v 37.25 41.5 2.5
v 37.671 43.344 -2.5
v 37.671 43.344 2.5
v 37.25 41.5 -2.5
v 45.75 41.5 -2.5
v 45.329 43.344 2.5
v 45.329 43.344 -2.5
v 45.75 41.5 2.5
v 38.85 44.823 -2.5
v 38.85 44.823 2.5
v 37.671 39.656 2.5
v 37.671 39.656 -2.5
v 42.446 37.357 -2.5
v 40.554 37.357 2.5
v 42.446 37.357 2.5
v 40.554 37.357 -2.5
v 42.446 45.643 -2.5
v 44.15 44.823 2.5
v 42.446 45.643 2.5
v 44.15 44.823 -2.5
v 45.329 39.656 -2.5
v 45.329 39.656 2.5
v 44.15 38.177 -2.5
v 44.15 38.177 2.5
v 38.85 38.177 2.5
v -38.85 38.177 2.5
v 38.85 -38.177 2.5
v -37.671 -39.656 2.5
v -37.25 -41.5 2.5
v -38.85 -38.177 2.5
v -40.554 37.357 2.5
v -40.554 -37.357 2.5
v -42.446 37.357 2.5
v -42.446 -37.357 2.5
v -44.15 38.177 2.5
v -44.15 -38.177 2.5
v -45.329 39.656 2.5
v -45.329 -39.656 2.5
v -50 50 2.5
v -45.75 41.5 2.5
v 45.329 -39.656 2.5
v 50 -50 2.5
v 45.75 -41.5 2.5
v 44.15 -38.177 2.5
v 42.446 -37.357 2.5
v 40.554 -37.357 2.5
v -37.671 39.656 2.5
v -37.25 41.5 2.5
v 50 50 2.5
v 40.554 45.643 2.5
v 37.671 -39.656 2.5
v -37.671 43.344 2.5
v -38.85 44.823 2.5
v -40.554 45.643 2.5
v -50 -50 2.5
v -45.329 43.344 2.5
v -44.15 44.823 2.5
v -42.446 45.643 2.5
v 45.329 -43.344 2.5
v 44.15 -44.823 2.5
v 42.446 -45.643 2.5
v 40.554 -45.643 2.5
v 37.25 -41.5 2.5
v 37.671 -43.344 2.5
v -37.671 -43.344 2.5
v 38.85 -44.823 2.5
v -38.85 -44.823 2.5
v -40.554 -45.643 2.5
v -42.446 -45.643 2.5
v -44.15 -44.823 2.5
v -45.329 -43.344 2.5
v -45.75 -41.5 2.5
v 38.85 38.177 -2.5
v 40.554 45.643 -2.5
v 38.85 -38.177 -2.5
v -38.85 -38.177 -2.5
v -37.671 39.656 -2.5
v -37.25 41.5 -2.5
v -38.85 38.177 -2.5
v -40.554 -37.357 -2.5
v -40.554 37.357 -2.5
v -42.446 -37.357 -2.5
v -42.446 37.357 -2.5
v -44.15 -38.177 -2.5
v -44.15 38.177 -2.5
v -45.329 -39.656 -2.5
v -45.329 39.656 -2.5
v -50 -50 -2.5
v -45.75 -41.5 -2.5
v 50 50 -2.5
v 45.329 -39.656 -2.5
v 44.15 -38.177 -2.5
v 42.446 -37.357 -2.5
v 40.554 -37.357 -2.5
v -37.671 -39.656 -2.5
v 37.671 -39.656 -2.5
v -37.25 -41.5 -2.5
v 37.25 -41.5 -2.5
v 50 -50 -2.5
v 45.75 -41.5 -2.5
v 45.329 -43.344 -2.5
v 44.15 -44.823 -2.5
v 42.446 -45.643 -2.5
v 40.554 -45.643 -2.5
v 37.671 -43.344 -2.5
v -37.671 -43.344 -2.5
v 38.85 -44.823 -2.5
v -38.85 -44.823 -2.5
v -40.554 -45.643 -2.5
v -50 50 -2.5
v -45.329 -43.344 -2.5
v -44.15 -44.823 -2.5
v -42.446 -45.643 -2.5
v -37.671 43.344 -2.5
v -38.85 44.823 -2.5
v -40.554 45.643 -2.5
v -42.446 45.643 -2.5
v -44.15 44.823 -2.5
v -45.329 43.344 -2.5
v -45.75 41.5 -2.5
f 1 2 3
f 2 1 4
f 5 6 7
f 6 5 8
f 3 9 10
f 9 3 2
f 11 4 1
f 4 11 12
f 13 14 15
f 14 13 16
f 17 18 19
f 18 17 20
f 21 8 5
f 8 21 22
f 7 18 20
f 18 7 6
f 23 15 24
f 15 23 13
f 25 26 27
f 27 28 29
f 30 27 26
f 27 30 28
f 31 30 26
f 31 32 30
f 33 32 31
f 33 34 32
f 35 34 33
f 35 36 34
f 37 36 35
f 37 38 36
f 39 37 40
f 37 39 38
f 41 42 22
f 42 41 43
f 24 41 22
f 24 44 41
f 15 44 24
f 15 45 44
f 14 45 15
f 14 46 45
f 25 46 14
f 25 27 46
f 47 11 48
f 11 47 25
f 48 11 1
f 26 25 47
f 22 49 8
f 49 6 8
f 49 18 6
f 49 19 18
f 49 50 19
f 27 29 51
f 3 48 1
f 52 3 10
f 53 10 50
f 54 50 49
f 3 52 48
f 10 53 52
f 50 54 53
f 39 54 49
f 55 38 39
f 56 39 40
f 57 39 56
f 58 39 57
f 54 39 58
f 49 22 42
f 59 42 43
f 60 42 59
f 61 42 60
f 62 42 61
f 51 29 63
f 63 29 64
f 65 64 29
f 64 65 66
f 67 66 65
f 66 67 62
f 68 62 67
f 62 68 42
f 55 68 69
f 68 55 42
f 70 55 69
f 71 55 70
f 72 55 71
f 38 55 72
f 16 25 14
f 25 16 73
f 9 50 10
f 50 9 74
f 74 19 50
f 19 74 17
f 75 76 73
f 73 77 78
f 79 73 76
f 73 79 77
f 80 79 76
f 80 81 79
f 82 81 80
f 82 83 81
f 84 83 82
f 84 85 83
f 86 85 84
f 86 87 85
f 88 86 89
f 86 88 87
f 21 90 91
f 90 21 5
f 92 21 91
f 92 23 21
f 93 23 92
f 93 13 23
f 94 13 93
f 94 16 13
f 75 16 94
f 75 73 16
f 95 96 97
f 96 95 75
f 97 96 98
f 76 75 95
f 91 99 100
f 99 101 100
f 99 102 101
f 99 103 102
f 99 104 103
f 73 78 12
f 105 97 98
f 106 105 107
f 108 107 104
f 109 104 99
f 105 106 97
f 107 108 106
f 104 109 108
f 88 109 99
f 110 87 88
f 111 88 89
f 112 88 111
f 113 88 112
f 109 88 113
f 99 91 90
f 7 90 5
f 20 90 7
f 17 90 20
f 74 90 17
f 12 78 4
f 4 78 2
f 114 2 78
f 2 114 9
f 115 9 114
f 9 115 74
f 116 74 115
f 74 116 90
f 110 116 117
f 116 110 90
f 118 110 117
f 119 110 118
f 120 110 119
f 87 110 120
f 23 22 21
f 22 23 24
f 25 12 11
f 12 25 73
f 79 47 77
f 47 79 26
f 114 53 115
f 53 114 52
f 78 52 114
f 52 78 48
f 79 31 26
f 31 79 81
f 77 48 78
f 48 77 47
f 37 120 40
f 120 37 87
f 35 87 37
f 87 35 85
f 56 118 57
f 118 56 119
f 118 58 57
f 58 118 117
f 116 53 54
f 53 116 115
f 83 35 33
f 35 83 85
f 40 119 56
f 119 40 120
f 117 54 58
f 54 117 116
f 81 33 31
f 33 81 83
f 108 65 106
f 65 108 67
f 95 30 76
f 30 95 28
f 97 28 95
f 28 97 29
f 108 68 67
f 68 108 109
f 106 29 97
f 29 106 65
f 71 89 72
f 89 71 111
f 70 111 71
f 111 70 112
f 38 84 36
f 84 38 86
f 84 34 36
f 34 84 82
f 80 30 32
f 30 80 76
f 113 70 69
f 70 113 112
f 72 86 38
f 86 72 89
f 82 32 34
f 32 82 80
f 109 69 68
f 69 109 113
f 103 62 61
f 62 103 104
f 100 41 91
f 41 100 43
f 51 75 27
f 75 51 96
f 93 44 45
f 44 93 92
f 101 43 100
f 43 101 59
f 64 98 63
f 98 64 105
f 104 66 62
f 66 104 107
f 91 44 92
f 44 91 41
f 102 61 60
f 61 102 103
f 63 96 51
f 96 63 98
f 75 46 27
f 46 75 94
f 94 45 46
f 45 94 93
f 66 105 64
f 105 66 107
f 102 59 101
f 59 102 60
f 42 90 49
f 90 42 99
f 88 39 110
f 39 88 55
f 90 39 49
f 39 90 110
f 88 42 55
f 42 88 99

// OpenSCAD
// Generated by SolidPython 1.1.3 on 2023-10-11 16:42:55


difference() {
	cube(center = true, size = [100, 100, 5]);
	union() {
		translate(v = [41.5000000000, 41.5000000000]) {
			cylinder(center = true, h = 5, r = 4.2500000000);
		}
		translate(v = [-41.5000000000, 41.5000000000]) {
			cylinder(center = true, h = 5, r = 4.2500000000);
		}
		translate(v = [-41.5000000000, -41.5000000000]) {
			cylinder(center = true, h = 5, r = 4.2500000000);
		}
		translate(v = [41.5000000000, -41.5000000000]) {
			cylinder(center = true, h = 5, r = 4.2500000000);
		}
	}
}
/***********************************************
*********      SolidPython code:      **********
************************************************
 
import solid
import numbers
import pudb
from solid.utils import *
import viewscad
import subprocess
import os
import os.path as osp
import math
import sys

chamfer_extrude=solid.import_scad("./chamfer_extrude.scad")
chamfer_extrude=chamfer_extrude.chamfer_extrude
r = viewscad.Renderer(width=800, height=800)

def debug(model,f_name,path="/home/ts/code/projects/mfd/designs/debug"):
    solid.scad_render_to_file(model,osp.join(path,f_name)+".scad")
#generate position list of wells using offset from center
wells_pos_from_center_4 = lambda offset: [[-offset,offset],
                                        [offset, offset],
                                        [-offset, -offset],
                                        [offset, -offset]]
#wells_pos_from_center_2 = lambda offset: [[0,offset],
#                                        [0, -offset]]
wells_pos_from_center_2 = lambda offset: [[offset,0],
                                        [-offset,0]]

def make_well(dims,shape=None,height=None,dxf=False):
    def circle_cylinder():
        if dxf or (height is None):
            well = solid.circle(r=dims, segments=64)
        else:
            well = solid.cylinder(r=dims, h=height, segments=64, center = True)
        return well
    if dims is None:
        sys.exit("radius needs to be a number")
    if isinstance(dims, numbers.Number):
        well =circle_cylinder()
    elif len(dims)==1:
        if isinstance(dims[1], numbers.Number):
            well =circle_cylinder()
        else:
            sys.exit("radius needs to be a number")
    elif len(dims)==2:
        well = solid.square(dims,center = True)
    elif len(dims)==3:
        well = solid.cube(dims, center = True)
    return well

def wells_top_bottom(center_gap,device_dims=None,shape=None,height=None, positions = None, dxf = False):
    well_shape = make_well(device_dims,shape=shape,height=height,dxf=dxf)
    wells = []
    if positions is None:
        offset = radius+radius/2.0
        positions = wells_pos_from_center_2(offset)
    if dxf or (height is None):
        height = 0
    for position in positions:
        if dxf:
            wells.append(solid.translate([position[0],position[1]])(well_shape))
        else:
            wells.append(solid.translate([position[0],position[1],height/2.0])(well_shape))
    return  union()(*wells)

#place wells in four corners 
def four_corner(radius,height=None, positions = None, dxf = False):
    #if well pos not specified set
    #to equally spaced by half radius
    if positions is None:
        offset = radius+radius/2.0
        positions = wells_pos_from_center_4(offset)
    if dxf or (height is None):
        height = 0
    #make wells at positions with specified radius and height
    wells = []
    for position in positions:
        #make circle if making dxf
        if dxf:
            well_shape = solid.circle(r=radius, segments=64)
            well_shape = solid.translate([position[0],position[1]])(well_shape)
        #if stl make cylinder
        else:
            well_shape = solid.cylinder(r=radius, h=height, segments=64, center = True)
            well_shape = solid.translate([position[0],position[1],height/2.0])(well_shape)
        wells.append(well_shape)
    return  union()(*wells)

#generate channels 
def make_channels(length,width,height=0,num_chans=1,max_chans=None,spacing=None, dxf = False,
                  rotate_channels=False):
    if dxf or (height is None):
        height = 0
    #if channel gap not defined, is equal to
    if spacing is None: spacing = width
    #calculate number of channels if fitting max num within given width
    if not max_chans is None:
        import math
        num_chans = math.floor((max_chans-spacing)/(width+spacing))
    #get total width of channel section  
    total_width = (width*num_chans)+(spacing*(num_chans-1))

    #make template channel
    #if rotate_channels: width, length = length, width
    if dxf:
        channel_t = solid.square([length,width],center = True)
    else:
        channel_t = solid.cube([length,width,height], center = True)

    #if number channels is even, offset the first channel to center its gap
    if num_chans % 2 == 0: centering = -(width/2.0+spacing/2.0)
    else: centering = 0
    #move template channel up to align bottom at z = 0 
    #and offset center if necessary
    if dxf:
        channel_t = solid.translate([0,centering])(channel_t)
    else:
        channel_t = solid.translate([0,centering,height/2.0])(channel_t)

    #if rotate_channels: length,width = width,length
    #start making the channels
    channels = []
    for i in range(num_chans):
        #if i=0 there is no translation
        #if i=1, we make the first channel adjacent to second
        direction = i

        #if i>=1, we add channels alternating left and right
        if i >= 1:
            direction = -(i/2.0)
            if i % 2 == 1: direction = (-direction)+0.5
                
        #make channel at right position and add it to channel list
        translation_coords = [0,direction*(width+spacing)]
        #if rotate_channels: translation_coords = [direction*(width+spacing),0]
        if dxf:
            channel = solid.translate(translation_coords)(channel_t)
        else:
            channel = solid.translate([*translation_coords,0])(channel_t)
        channels.append(channel)
    
    #group all channels as one object
    channels = union()(*channels)
    #compute the x,y,z dimensions in order to pass as arguments 
    #for construction of other parts of device (such as the chambers)
    measurements = {'x':(length/2.0,-length/2.0),
                    'y':(total_width/2.0,-total_width/2.0)}
    if not dxf:
        measurements['z'] = (height,0)
    if rotate_channels:
        channels = solid.rotate(90)(channels)
        measurements['x'],measurements['y']=measurements['y'],measurements['x']
    return channels,measurements

def make_chambers(msrs,height=None,extra=0,len_until=None,width=None, dxf = False):
    #computes x,y,z length
    total = lambda x : abs(x[0]) + abs(x[1])
    
    #if specific height if specified
    #otherwise use same height as channels
    if dxf:
        pass
    elif not height is None:
        msrs['z'] = (height,0)
    else:
        msrs['z'] = (0,0)
        
    #make copy of measurements from channels to modify chamber dimensions 
    #and add length to chambers as specified
    chamber_dims = msrs.copy()
    #calculate length of chamber to reach specified offset
    if not len_until is None:
        chamber_len = len_until-(msrs['x'][0])
    #or add specified length to channel length (if not specified, adds 0)
    else:
        chamber_len = msrs['x'][0]+extra
    #set the chamber length based 
    chamber_dims['x'] = (chamber_len/2.0,-(chamber_len/2.0))
    #compute final dimensions of chamber
    if not width is None:
        chamber_dims['y'] = (width/2.0,-width/2.0)
    chamber_dims = [total(size) for size in chamber_dims.values()]
        
    #calculate chamber translation offset to place adjacent to channels
    chamber_trslt = msrs['x'][0]+(chamber_len/2.0)
    #compute chamber translation coordinates to align with channels
    #x = 1 moves chamber above channels
    #x = -1 moves chamber below channels
    if dxf:
        trslt = lambda x : [x*(chamber_trslt),0]
    else:
        trslt = lambda x : [x*(chamber_trslt),0,msrs['z'][0]/2.0]
    
    #function to make chamber at top or at bottom 
    if dxf:
        move = lambda x : solid.translate(trslt(x))(solid.square(chamber_dims, center = True) )
    else:
        move = lambda x : solid.translate(trslt(x))(solid.cube(chamber_dims,center = True))
    #make top and bottom chambers and return them as grouped
    top = move(1)
    bottom = move(-1)
    #chambers=solid.rotate(90)(solid.union()(top,bottom))
    chambers=(solid.union()(top,bottom))

    return chambers

#create alignment features 
def alignment_features(unit,dims,grid_size, mask_size = None, alignment = "hollow", units_from_center = (2.5,2.5), corner_len=None):
    width = grid_size[0]*dims[0]
    length = grid_size[1]*dims[1]
    if mask_size is None and corner_len is None:
        corner_len = (dims[0] + dims[1]) /2 / 8
    corner = lambda thickness_div : solid.union()( solid.square([corner_len,corner_len/thickness_div],center=False), solid.square([corner_len/thickness_div,corner_len],center=False) )
    
    def make_full(thickness_div):
        thickness = corner_len/thickness_div
        tr = solid.translate([0, 0, 0 ])(solid.rotate(180)(corner(thickness_div)))
        tr = solid.translate([thickness/2,thickness/2,0])(tr)
        bl = solid.translate([0, 0, 0 ])(solid.rotate(0)(corner(thickness_div)))
        bl = solid.translate([-thickness/2,-thickness/2,0])(bl)
        return solid.union()(tr,bl)
    
    def make_hollow(thickness_div):
        thickness = corner_len/(thickness_div/2)
        inner = make_full(thickness_div)
        outer = make_full(thickness_div/2)
        hollow = outer - inner 
        return hollow
    
    center = (width /2 , length/2)
    mask_pos = lambda x,y : (center[0] + x*(float(units_from_center[0])*dims[0]), center[1] + y*(float(units_from_center[1])*dims[1]))
    positions = []
    positions.append(mask_pos(1,0))
    positions.append(mask_pos(0,1))
    positions.append(mask_pos(-1,0))
    positions.append(mask_pos(0,-1))
    make_mask = lambda mtype : make_hollow(8) if mtype == "hollow" else make_full(8)
    masks = [ solid.translate([*position,0])(make_mask(alignment)) for position in positions]
    
    solid.scad_render_to_file(solid.union()(*masks),"./designs/open_chamber/masks.scad")
    #return unit - solid.union()(*masks)
    return solid.union()(*masks,unit)

def create_outline(thickness, array, dims, grid_size,):
    width = grid_size[0]*dims[0] + thickness *2
    length = grid_size[1]*dims[1] + thickness *2
    outer = solid.translate([-thickness, -thickness,0])(solid.square([width, length]))
    return outer-array

def create_wall(wall_thickness, outline_thickness, dims, grid_size, wall_height = 2000, dxf = False):
    inner_width = grid_size[0]*dims[0] + outline_thickness *2
    inner_length = grid_size[1]*dims[1] + outline_thickness *2
    outer_width = inner_width + wall_thickness * 2
    outer_length = inner_length + wall_thickness * 2
    outer_pos_x = -outline_thickness-wall_thickness
    outer_pos_y = -outline_thickness-wall_thickness
    inner_pos_x = -outline_thickness
    inner_pos_y = -outline_thickness
    if dxf:
        inner_wall = solid.translate([inner_pos_x,
                                      inner_pos_y,
                                      0])(solid.square([inner_width, inner_length]))
        outer_wall = solid.translate([outer_pos_x,
                                      outer_pos_y,
                                      0])(solid.square([outer_width, outer_length]))

        return outer_wall-inner_wall
    else:
        inner_wall = solid.translate([inner_pos_x,
                                      inner_pos_y,
                                      0])(solid.cube([inner_width, inner_length,wall_height]))
        outer_wall = solid.translate([outer_pos_x,
                                      outer_pos_y,
                                      0])(solid.cube([outer_width, outer_length,wall_height]))

        return outer_wall-inner_wall, {'wall_height': wall_height,
                                       'wall_thickness': wall_thickness,
                                       'inner_width':inner_width,
                                       'inner_length': inner_length,
                                       'outer_width': outer_width,
                                       'outer_length': outer_length,
                                       'outer_pos_x' : outer_pos_x,
                                       'outer_pos_y' : outer_pos_y,
                                       'inner_pos_x' : inner_pos_x,
                                       'inner_pos_y' : inner_pos_y}

def create_thicker_wall(wall_thickness, outer_wall_offset, wall_dims, dims, grid_size, height_start = .2, height_end=2, dxf = False):
    addon_wall,thicker_wall_dims = create_wall(wall_thickness, outer_wall_offset, dims, grid_size, wall_height=height_end-height_start, dxf = False)
    addon_wall = solid.translate([0,0,height_start])(addon_wall)

    thicker_wall_dims['wall_height'] = height_end
    thicker_wall_dims['wall_thickness'] = wall_dims['wall_thickness'] + wall_thickness
    return addon_wall, thicker_wall_dims
 
def add_lock_to_wall(wall,wall_dims,y_offset = 0,cut_ratio=0.7,L_length=3, gap_ratio=0.05, axis="x",width_ratio=1/2):
    # Makes L shape
    def make_L(max_length,length_thickness,max_width,width_thickness,height,y_offset):
        length = solid.cube([max_length,length_thickness,height])
        width = solid.cube([width_thickness,max_width,height])
        width = solid.translate([max_length-(width_thickness),0,0])(width)
        L = solid.union()(width,length)
        debug(L,"L")
        if axis == "x":
            L = solid.rotate(-90)(L)
            L = solid.translate([0,max_length,0])(L)
        else:
            L = solid.rotate(-180)(L)
            L = solid.translate([max_length,max_width,0])(L)
        return solid.translate([0,0,y_offset])(L)
    
    lock_length = L_length
    lock_width = wall_dims['wall_thickness']*width_ratio
    lock_length_thickness = lock_width/2
    lock_width_thickness = lock_width/2
    L_lock = make_L(lock_length,lock_length_thickness,lock_width,lock_width_thickness, wall_dims['wall_height']-y_offset, y_offset)
    
    margin_space = lock_length - lock_length*(1-gap_ratio)
    key_length = lock_length-margin_space
    key_length_thickness = lock_length_thickness-(margin_space*2)
    key_width = lock_width-(margin_space*2)
    key_width_thickness = lock_width_thickness-(margin_space*2)
    L_key = make_L(key_length,key_length_thickness,key_width,key_width_thickness, wall_dims['wall_height']-y_offset, y_offset)
    L_key = solid.translate([margin_space,margin_space,0])(L_key)
    L = solid.union()(L_lock,L_key)
    debug(L,"L")
    
    #Make cube to be used as negative to split frame in a half
    #Can choose if making left or right negative, specify ratio of split
    def make_negative(right,cut_ratio):
        if axis == "x":
            if right:
                length = wall_dims['outer_length']*(1-cut_ratio)
                pos_x = wall_dims['outer_pos_x']+(wall_dims['outer_length']*cut_ratio)
            else:
                length = wall_dims['outer_length']*(cut_ratio)
                pos_x = wall_dims['outer_pos_x'] 
            negative = solid.cube([wall_dims['outer_width'],length, wall_dims['wall_height']])
            negative = solid.translate([wall_dims['outer_pos_y'],pos_x,0])(negative)
        else:
            if right:
                length = wall_dims['outer_width']*(1-cut_ratio)
                pos_x = wall_dims['outer_pos_y']+(wall_dims['outer_width']*cut_ratio)
            else:
                length = wall_dims['outer_width']*(cut_ratio)
                pos_x = wall_dims['outer_pos_y'] 
            negative = solid.cube([length,wall_dims['outer_length'], wall_dims['wall_height']])
            negative = solid.translate([pos_x,wall_dims['outer_pos_x'],0])(negative)
        return negative, pos_x, length 
                      
    #Make negatives
    negative_right, right_half_pos_x, right_half_length = make_negative(True,cut_ratio)
    negative_left, left_half_pos_x, right_half_length = make_negative(False,cut_ratio)
    #Make halves
    left_half = solid.difference()(wall,negative_right)
    right_half = solid.difference()(wall,negative_left)
    def place_L(L, L_length,L_width):
        #Place L on top wall       
        offset_to_center = (wall_dims['wall_thickness']-L_width)/2
        if axis == "x":
            y_pos_top = (wall_dims['outer_pos_y'] +
                    wall_dims['outer_width'] - 
                    L_width - offset_to_center)
            top_L = solid.translate([y_pos_top,
                                     right_half_pos_x-(L_length),
                                     0])(L)
            #Place L on bottom wall       
            y_pos_bottom = wall_dims['outer_pos_y']+offset_to_center
            bottom_L = solid.translate([y_pos_bottom,
                                        right_half_pos_x-L_length,
                                        0])(L)
        else:
            y_pos_top = (wall_dims['outer_pos_x'] +
                    wall_dims['outer_length'] -
                    (L_width+offset_to_center))
            top_L = solid.translate([right_half_pos_x-L_length,
                                     y_pos_top,
                                     0])(L)
            #Place L on bottom wall       
            y_pos_bottom = wall_dims['outer_pos_y']+offset_to_center
            bottom_L = solid.translate([right_half_pos_x-L_length,
                                        y_pos_bottom,
                                        0])(L)
        return bottom_L, top_L
    #Make complimentary L pieces through union and differences
    #Make Lock
    bottom_L_lock, top_L_lock = place_L(L_lock,L_length,lock_width)
    left_half = solid.difference()(left_half,bottom_L_lock)
    left_half = solid.difference()(left_half,top_L_lock)
    #Make Key
    bottom_L_key, top_L_key = place_L(L_key,L_length,lock_width)
    right_half = solid.union()(right_half,bottom_L_key)
    right_half = solid.union()(right_half,top_L_key)
    return left_half, right_half


#build a row x col grid of containment units
def make_unit_array(unit,dims,grid_size, dxf = False, alignment = None, mask_size = None,
                    units_from_center = None,alignment_offset=None, alignment_mark_size=1):
    units = []
    for col in range(grid_size[1]):
        for row in range(grid_size[0]):
            if dxf:
                units.append(solid.translate([row*dims[0],col*dims[1]])(unit))
            else:
                units.append(solid.translate([row*dims[0],col*dims[1],dims[2]/2.0])(unit))
    array = solid.union()(*units)
    if (not alignment is None) and dxf:
        if not alignment_offset is None:
            array = solid.translate([alignment_offset[0],alignment_offset[1]])(array)
        array = alignment_features(array,dims, grid_size, alignment = alignment, mask_size = None, units_from_center = units_from_center,corner_len=alignment_mark_size)
        if not alignment_offset is None:
            array = solid.translate([-alignment_offset[0],-alignment_offset[1]])(array)
    return array


def make_taylor(wells_pos = wells_pos_from_center_4(2.25), well_rad = 1.5 ,
                well_height = 2, chan_w = 0.01, chan_l = 1, chan_h = 0.010 ,
                chan_gap = 0.040, max_chans = None,num_chans=100, chamber_height  = 0.100,
                columns = 1, rows = 1, chamber_len_until=2.25, add_channels = True, add_wells = True, 
                add_chambers = True, save_path = "./", alignment = None, units_from_center = 2,
                mask_size = None, render_stl = False, outline_thickness = 0.050, dxf = True,
                wall_height = 15, wall_thickness = 0.95, casing_x=9, casing_y=9, casing_z=0,rotate_units=0):

    dims = [casing_x, casing_y, casing_z]
    wells = four_corner(well_rad,well_height, dxf = dxf, positions = wells_pos)
    debug(wells,"wells")
    channels, msrs = make_channels(chan_l,chan_w,chan_h,dxf=dxf, spacing = chan_gap, max_chans=max_chans,num_chans=num_chans)
    debug(channels,"channels")
    chambers = make_chambers(msrs,dxf = dxf, height=chamber_height,len_until=chamber_len_until)
    debug(chambers,"chambers")

    #add together and render
    device_parts = []
    if add_channels:
        device_parts.append(channels)
    if add_wells:
        device_parts.append(wells)
    if add_chambers:
        device_parts.append(chambers)
    device=union()(*device_parts)
    device = rotate(rotate_units)(device)

    device=solid.translate([dims[0]/2.0,dims[1]/2.0,0])(device)
    channels = rotate(rotate_units)(channels)
    channels=solid.translate([dims[0]/2,dims[1]/2,0])(channels)
    chambers_wells = union()(wells,chambers)
    chambers_wells = rotate(rotate_units)(chambers_wells)
    chambers_wells=solid.translate([dims[0]/2,dims[1]/2,0])(chambers_wells)

    file_name = str(rows)+'x'+str(columns)+'_units_'
    grid_size = [rows,columns]

    if alignment:
        alignment="full"
    device = make_unit_array(device,dims,grid_size, dxf=dxf, alignment = alignment,
                                 units_from_center = units_from_center)
    channels = make_unit_array(channels,dims,grid_size, dxf=dxf, alignment = alignment,
                                 units_from_center = units_from_center)
    if alignment=="full":
        alignment="hollow"

    chambers_wells = make_unit_array(chambers_wells,dims,grid_size, dxf=dxf, alignment = alignment,
                                 units_from_center =units_from_center)

    def save_model(model,prefix):
        model_fname = os.path.abspath(save_path+prefix+"_"+file_name+".scad")
        solid.scad_render_to_file(model,model_fname)
        return model_fname

    wells_fname = save_model(wells,"wells")
    channels_fname = save_model(channels,"channels")
    device_fname = save_model(device,"device")
    chambers_wells_fname = save_model(chambers_wells,"chambers_wells")
    return (chambers_wells,chambers_wells_fname), (channels,channels_fname), (device,device_fname)

def make_device(design='open',rows=8,columns=6,wells_pos = 4.5,well_offset=3.2, well_rad=3.2,well_height=0.1,
                chan_l=1,chan_w=0.01,chan_h=0.01,chan_gap=0.015,num_chans=101,dxf=True,save_path="./designs/open_chamber/",
                casing_x=9.0,casing_y=18.0,casing_z=0,rotate_units=90,units_from_center=(3,1),chamber_len_until=4.5,
                chamber_width=None,alignment=True, add_wells=True, add_channels=True,add_chambers=True):

    dims = [casing_x, casing_y, casing_z]
    if design == "open":
        wells_pos=wells_pos_from_center_2(wells_pos)
        wells = wells_top_bottom(well_offset*2,device_dims=well_rad,height=well_height, dxf = dxf, positions = wells_pos)
    elif design == "closed":
        wells_pos=wells_pos_from_center_4(wells_pos)
        debug(wells,"wells")
        wells = four_corner(well_offset,well_heightdevice_dims=well_rad, dxf = dxf, positions = wells_pos)
    else:
        print(design+" is not a valid design.\n Choose valid design: 'open' or 'closed'")
        exit()
    wells = rotate(rotate_units)(wells)
    wells=solid.translate([dims[0]/2,dims[1]/2,0])(wells)
    debug(wells,"wells")

    channels, msrs = make_channels(chan_l,chan_w,chan_h,dxf=dxf, spacing = chan_gap, num_chans=num_chans,rotate_channels=False)
    channels = rotate(rotate_units)(channels)
    channels=solid.translate([dims[0]/2,dims[1]/2,0])(channels)

    chambers=make_chambers(msrs,height=None,extra=0,len_until=chamber_len_until, width=chamber_width,dxf = dxf)
    chambers = rotate(rotate_units)(chambers)
    chambers=solid.translate([dims[0]/2,dims[1]/2,0])(chambers)

    device_parts = []
    if add_channels:
        device_parts.append(channels)
    if add_wells:
        device_parts.append(wells)
    if add_chambers:
        device_parts.append(chambers)
    device = union()(*device_parts)
    #device = rotate(rotate_units)(device)
    #device=solid.translate([dims[0]/2.0,dims[1]/2.0,0])(device)

    chambers_wells = []
    if add_chambers:
        chambers_wells.append(chambers)
    if add_wells:
        chambers_wells.append(wells)
    chambers_wells = union()(*chambers_wells)
    #chambers_wells = union()(wells,chambers)
    #chambers_wells = rotate(rotate_units)(chambers_wells)
    #chambers_wells=solid.translate([dims[0]/2,dims[1]/2,0])(chambers_wells)

    file_name = str(rows)+'x'+str(columns)+'_units_'

    grid_size = [rows,columns]
    if alignment:
        alignment="full"
    device = make_unit_array(device,dims,grid_size, dxf=dxf, alignment = alignment,
                                 units_from_center = units_from_center)
    channels = make_unit_array(channels,dims,grid_size, dxf=dxf, alignment = alignment,
                                 units_from_center = units_from_center)
    if alignment=="full":
        alignment="hollow"

    chambers_wells = make_unit_array(chambers_wells,dims,grid_size, dxf=dxf, alignment = alignment,
                                 units_from_center =units_from_center)

    def save_model(model,prefix):
        model_fname = os.path.abspath(save_path+prefix+"_"+file_name+".scad")
        solid.scad_render_to_file(model,model_fname)
        return model_fname

    wells_fname = save_model(wells,"wells")
    channels_fname = save_model(channels,"channels")
    device_fname = save_model(device,"device")
    chambers_wells_fname = save_model(chambers_wells,"chambers_wells")
    return (chambers_wells,chambers_wells_fname), (channels,channels_fname), (device,device_fname)


def make_open_chamber(rows=8,columns=6,wells_pos = wells_pos_from_center_2(4.5), well_rad=3.2,well_height=0.1,
                      chan_l=1,chan_w=0.01,chan_h=0.01,chan_gap=0.015,num_chans=101,dxf=True,save_path="./designs/open_chamber/",
                      casing_x=9.0,casing_y=18.0,casing_z=0,rotate_units=90,units_from_center=(3,1),chamber_len_until=4.5,
                      chamber_width=None,alignment=True, add_wells=True, add_channels=True,add_chambers=True):

    dims = [casing_x, casing_y, casing_z]
    wells = wells_top_bottom(well_rad,height=well_height, dxf = dxf, positions = wells_pos)
    channels, msrs = make_channels(chan_l,chan_w,chan_h,dxf=dxf, spacing = chan_gap, num_chans=num_chans,rotate_channels=False)
    chambers=make_chambers(msrs,height=None,extra=0,len_until=chamber_len_until, width=chamber_width,dxf = dxf)
    debug(chambers,"chambers")
    device_parts = []
    if add_channels:
        device_parts.append(channels)
    if add_wells:
        device_parts.append(wells)
    if add_chambers:
        device_parts.append(chambers)
    device = union()(*device_parts)
    device = rotate(rotate_units)(device)
    device=solid.translate([dims[0]/2.0,dims[1]/2.0,0])(device)
    channels = rotate(rotate_units)(channels)
    channels=solid.translate([dims[0]/2,dims[1]/2,0])(channels)
    chambers_wells = union()(wells,chambers)
    chambers_wells = rotate(rotate_units)(chambers_wells)
    chambers_wells=solid.translate([dims[0]/2,dims[1]/2,0])(chambers_wells)

    file_name = str(rows)+'x'+str(columns)+'_units_'

    grid_size = [rows,columns]
    if alignment:
        alignment="full"
    device = make_unit_array(device,dims,grid_size, dxf=dxf, alignment = alignment,
                                 units_from_center = units_from_center)
    channels = make_unit_array(channels,dims,grid_size, dxf=dxf, alignment = alignment,
                                 units_from_center = units_from_center)
    if alignment=="full":
        alignment="hollow"

    chambers_wells = make_unit_array(chambers_wells,dims,grid_size, dxf=dxf, alignment = alignment,
                                 units_from_center =units_from_center)

    def save_model(model,prefix):
        model_fname = os.path.abspath(save_path+prefix+"_"+file_name+".scad")
        solid.scad_render_to_file(model,model_fname)
        return model_fname

    wells_fname = save_model(wells,"wells")
    channels_fname = save_model(channels,"channels")
    device_fname = save_model(device,"device")
    chambers_wells_fname = save_model(chambers_wells,"chambers_wells")
    return (chambers_wells,chambers_wells_fname), (channels,channels_fname), (device,device_fname)

def to_dxf(scad_path):
    dxf_path = scad_path.replace(".scad",".dxf")
    subprocess.call(["openscad", "-o", dxf_path, scad_path])
    import ezdxf
    temp_dxf = ezdxf.readfile(dxf_path)
    temp_dxf.saveas(dxf_path)

#def make_walls(diameter,thickness,grid_size,dims,height=20,segments=256,make_inner=True):
#    wafer_wall_out = solid.cylinder(r=diameter/2,h=height, segments=segments)
#    wafer_wall_in = solid.cylinder(r=(diameter/2-thickness),h=height, segments=segments)
#    wafer_wall = solid.difference()(wafer_wall_out,wafer_wall_in)
#    wafer_wall = solid.translate([grid_size[1]*dims[1]/2.0,grid_size[0]*dims[0]/2.0])(wafer_wall)
#
#    vertical_wall_length = grid_size[1]*dims[1]
#    horizontal_wall_length = grid_size[0]*dims[0]
#    vertical_wall = solid.cube([vertical_wall_length,thickness,height],center = True)
#    vertical_wall = solid.translate([vertical_wall_length/2,0,height/2])(vertical_wall)
#    horizontal_wall = solid.cube([thickness,horizontal_wall_length,height],center = True)
#    horizontal_wall = solid.translate([0,vertical_wall_length/2,height/2])(horizontal_wall)
#    walls = []
#    walls.append(horizontal_wall)
#    walls.append(vertical_wall)
#    for col in range(grid_size[1]):
#        if col == grid_size[1]-1: 
#            walls.append(solid.translate([0,(col+1)*dims[1]])(vertical_wall))
#        elif col > 0 and col < grid_size[1]-1 and make_inner==True:
#            walls.append(solid.translate([0,(col+1)*dims[1]])(vertical_wall))
#    for row in range(grid_size[0]):
#        if row == grid_size[0]-1: 
#            walls.append(solid.translate([(row+1)*dims[0],0])(horizontal_wall))
#        elif row > 0 and row < grid_size[0]-1 and make_inner==True:
#            walls.append(solid.translate([(row+1)*dims[0],0])(horizontal_wall))
#    walls = union()(*walls)
#    wafer_walls = union()(walls,wafer_wall)
#    return walls,wafer_wall,wafer_walls

def make_walls(diameter,thickness,grid_size,dims,height=20,segments=256,make_inner=True,padx=0,pady=0):
    wafer_wall_out = solid.cylinder(r=diameter/2,h=height, segments=segments)
    wafer_wall_in = solid.cylinder(r=(diameter/2-thickness),h=height, segments=segments)
    wafer_wall = solid.difference()(wafer_wall_out,wafer_wall_in)
    wafer_wall = solid.translate([grid_size[1]*dims[1]/2.0,grid_size[0]*dims[0]/2.0])(wafer_wall)

    vertical_wall_length = grid_size[0]*dims[0]+padx
    horizontal_wall_length = grid_size[1]*dims[1]+pady
    vertical_wall = solid.cube([vertical_wall_length,thickness,height],center = True)
    vertical_wall = solid.translate([vertical_wall_length/2-pady/2,-padx/2,height/2])(vertical_wall)
    horizontal_wall = solid.cube([thickness,horizontal_wall_length,height],center = True)
    horizontal_wall = solid.translate([-pady/2,horizontal_wall_length/2-padx/2,height/2])(horizontal_wall)
    walls = []
    walls.append(horizontal_wall)
    walls.append(vertical_wall)
    for col in range(grid_size[1]):
        if col == grid_size[1]-1: 
            walls.append(solid.translate([0,(col+1)*dims[1]+pady])(vertical_wall))
        elif col > 0 and col < grid_size[1]-1 and make_inner==True:
            walls.append(solid.translate([0,(col+1)*dims[1]])(vertical_wall))
    for row in range(grid_size[0]):
        if row == grid_size[0]-1: 
            walls.append(solid.translate([(row+1)*dims[0]+padx,0])(horizontal_wall))
        elif row > 0 and row < grid_size[0]-1 and make_inner==True:
            walls.append(solid.translate([(row+1)*dims[0],0])(horizontal_wall))
    walls = union()(*walls)
    wafer_walls = union()(walls,wafer_wall)
    return walls,wafer_wall,wafer_walls

def save_model(model,base_path,base_name,dxf=True):
    if not os.path.exists(base_path):
        os.makedirs(base_path)
    dxf_path=osp.join(base_path,base_name+".scad")
    solid.scad_render_to_file(model,osp.join(dxf_path))
    if dxf:
        to_dxf(dxf_path)

def make_wafer(diameter,flat_len,thickness):
    wafer = solid.cylinder(r1=diameter/2,r2=diameter/2,h=thickness,segments=512,)()
    x_start_flat=(flat_len/2)
    y_start_flat = math.sqrt(((diameter/2)**2) - (x_start_flat**2) )
    height_delete_flat=diameter/2-y_start_flat
    flat_delete = solid.cube([flat_len,height_delete_flat,thickness],center=False)()
    flat_delete = solid.translate([-flat_len/2,y_start_flat,0])(flat_delete)
    wafer = solid.difference()(wafer,flat_delete)
    wafer = solid.rotate(90)(wafer)
    return wafer

def add_wafer_to_mask(wafer_size,flat_len,mask,grid_size,dims,wafer_line_thickness=0.1,outer_mask_thickness=5,alignment_offset=None):
    def make_wafer_mask(wafer_size,flat_len):
        wafer_mask = make_wafer(wafer_size,flat_len,1)
        wafer_mask = solid.projection()(wafer_mask)
        wafer_mask = solid.translate([grid_size[0]*dims[0]/2.0,grid_size[1]*dims[1]/2.0])(wafer_mask)
        if not alignment_offset is None:
            wafer_mask = solid.translate([-alignment_offset[0],-alignment_offset[1]])(wafer_mask)
        return wafer_mask

    inner_wafer_line_mask = make_wafer_mask(wafer_size-wafer_line_thickness/2,flat_len)
    outer_wafer_line_mask = make_wafer_mask(wafer_size+wafer_line_thickness/2,flat_len)
    outer_wafer_mask = make_wafer_mask(wafer_size+outer_mask_thickness,flat_len)
    outer_wafer_mask = solid.difference()(outer_wafer_mask,outer_wafer_line_mask)
    wafer_mask = solid.union()(outer_wafer_mask,inner_wafer_line_mask)

    return solid.difference()(wafer_mask,mask)

def make_posts(post_shape,post_height):
    posts = solid.linear_extrude(height=post_height)(post_shape)
    return posts

def make_wafer_empty(diameter,flat_len,thickness,margin,notch_len=20,notch_height=5,oversize=1.01):
    diameter*=oversize
    flat_len*=oversize
    wafer = make_wafer(diameter,flat_len,thickness)
    holder = solid.cylinder(r1=diameter/2+margin,r2=diameter/2+margin,h=thickness,segments=512)()
    holder = solid.difference()(holder,wafer)

    x_start_flat=(flat_len/2)
    y_start_flat = math.sqrt(((diameter/2)**2) - (x_start_flat**2) )
    height_delete_flat=diameter/2-y_start_flat
    notch = solid.cube([notch_len,notch_height,thickness],center=False)()
    notch = solid.translate([-notch_len/2,y_start_flat,0])(notch)
    notch = solid.rotate(90)(notch)
    return solid.difference()(holder,notch)

def wafer_print_calibration(diameter,thickness,height,z_offset):
    circles = []
    radii = []
    radii.append(diameter/2.0*0.8)
    radii.append(diameter/2.0*0.6)
    radii.append(diameter/2.0*0.4)
    radii.append(diameter/2.0*0.2)
    for radius in radii:
        inner = solid.cylinder(r1=radius-(thickness/2.0),r2=radius-(thickness/2.0),h=thickness,segments=512,)()
        outer = solid.cylinder(r1=radius+(thickness/2.0),r2=radius+(thickness/2.0),h=thickness,segments=512,)()
        diff = solid.difference()(outer,inner)
        circles.append(diff)
    circles = solid.union()(*circles)
    circles = solid.translate([0,0,z_offset])(circles)
    return circles

def make_rack(wells,dims,grid_size,alignment_offset,rack_x,rack_y,rack_thickness,bolt_width,add_bolts=True):

    #get X and Y dimensions of gride of pipette tips
    X_len = dims[0]*grid_size[0]
    Y_len = dims[1]*grid_size[1]
    #make rack
    rack = solid.cube([rack_x,rack_y,rack_thickness],center=True)

    if add_bolts:
    #add bolt holes
        bolt_hole=solid.cylinder(r=bolt_width/2,h=rack_thickness,center=True)()
        bolt_holes = []
        bolt_holes.append(solid.translate([rack_x/2-1.5*bolt_width,rack_y/2-1.5*bolt_width])(bolt_hole))
        bolt_holes.append(solid.translate([-rack_x/2+1.5*bolt_width,rack_y/2-1.5*bolt_width])(bolt_hole))
        bolt_holes.append(solid.translate([-rack_x/2+1.5*bolt_width,-rack_y/2+1.5*bolt_width])(bolt_hole))
        bolt_holes.append(solid.translate([rack_x/2-1.5*bolt_width,-rack_y/2+1.5*bolt_width])(bolt_hole))
        bolt_holes = solid.union()(*bolt_holes)
        rack=solid.difference()(rack,bolt_holes)
    rack_support = rack

    #center rack with pipette holes
    rack = solid.translate([0,0,rack_thickness/2])(rack)
    rack = solid.translate([X_len/2,Y_len/2])(rack)
    rack = solid.translate([-alignment_offset[0],-alignment_offset[1]])(rack)
    wells = solid.linear_extrude(height=rack_thickness)(wells)
    rack = solid.difference()(rack,wells)
    return rack, rack_support

def make_pillar(wells,dims,grid_size,alignment_offset,rack_x,rack_y,pillar_height,rack_thickness,bolt_width,add_bolts=True,taper_angle=1,bolt_position_corner=1.5):

    #get X and Y dimensions of gride of pipette tips
    X_len = dims[0]*grid_size[0]
    Y_len = dims[1]*grid_size[1]
    #make rack
    rack = solid.cube([rack_x,rack_y,rack_thickness],center=True)
    
    if add_bolts:
    #add bolt holes
        bolt_hole=solid.cylinder(r=bolt_width/2,h=rack_thickness,center=True)()
        bolt_holes = []
        bolt_holes.append(solid.translate([rack_x/2-bolt_position_corner*bolt_width,rack_y/2-bolt_position_corner*bolt_width])(bolt_hole))
        bolt_holes.append(solid.translate([-rack_x/2+bolt_position_corner*bolt_width,rack_y/2-bolt_position_corner*bolt_width])(bolt_hole))
        bolt_holes.append(solid.translate([-rack_x/2+bolt_position_corner*bolt_width,-rack_y/2+bolt_position_corner*bolt_width])(bolt_hole))
        bolt_holes.append(solid.translate([rack_x/2-bolt_position_corner*bolt_width,-rack_y/2+bolt_position_corner*bolt_width])(bolt_hole))
        bolt_holes = solid.union()(*bolt_holes)
        rack=solid.difference()(rack,bolt_holes)
    rack_support = rack

    #center rack with pipette holes
    #rack = solid.translate([0,0,-rack_thickness])(rack)
    rack = solid.translate([X_len/2,Y_len/2])(rack)
    rack = solid.translate([-alignment_offset[0],-alignment_offset[1]])(rack)
    if not taper_angle == 0:
        wells=chamfer_extrude(pillar_height,taper_angle,segments=20)(wells)
    else:
        wells = solid.linear_extrude(height=pillar_height)(wells)
    rack = solid.union()(rack,wells)
    return rack, rack_support

def deg_taper_len(height,deg):
    if not deg == 0:
        return height*math.tan(math.radians(deg))
    else:
        return 0









 
 
************************************************/
